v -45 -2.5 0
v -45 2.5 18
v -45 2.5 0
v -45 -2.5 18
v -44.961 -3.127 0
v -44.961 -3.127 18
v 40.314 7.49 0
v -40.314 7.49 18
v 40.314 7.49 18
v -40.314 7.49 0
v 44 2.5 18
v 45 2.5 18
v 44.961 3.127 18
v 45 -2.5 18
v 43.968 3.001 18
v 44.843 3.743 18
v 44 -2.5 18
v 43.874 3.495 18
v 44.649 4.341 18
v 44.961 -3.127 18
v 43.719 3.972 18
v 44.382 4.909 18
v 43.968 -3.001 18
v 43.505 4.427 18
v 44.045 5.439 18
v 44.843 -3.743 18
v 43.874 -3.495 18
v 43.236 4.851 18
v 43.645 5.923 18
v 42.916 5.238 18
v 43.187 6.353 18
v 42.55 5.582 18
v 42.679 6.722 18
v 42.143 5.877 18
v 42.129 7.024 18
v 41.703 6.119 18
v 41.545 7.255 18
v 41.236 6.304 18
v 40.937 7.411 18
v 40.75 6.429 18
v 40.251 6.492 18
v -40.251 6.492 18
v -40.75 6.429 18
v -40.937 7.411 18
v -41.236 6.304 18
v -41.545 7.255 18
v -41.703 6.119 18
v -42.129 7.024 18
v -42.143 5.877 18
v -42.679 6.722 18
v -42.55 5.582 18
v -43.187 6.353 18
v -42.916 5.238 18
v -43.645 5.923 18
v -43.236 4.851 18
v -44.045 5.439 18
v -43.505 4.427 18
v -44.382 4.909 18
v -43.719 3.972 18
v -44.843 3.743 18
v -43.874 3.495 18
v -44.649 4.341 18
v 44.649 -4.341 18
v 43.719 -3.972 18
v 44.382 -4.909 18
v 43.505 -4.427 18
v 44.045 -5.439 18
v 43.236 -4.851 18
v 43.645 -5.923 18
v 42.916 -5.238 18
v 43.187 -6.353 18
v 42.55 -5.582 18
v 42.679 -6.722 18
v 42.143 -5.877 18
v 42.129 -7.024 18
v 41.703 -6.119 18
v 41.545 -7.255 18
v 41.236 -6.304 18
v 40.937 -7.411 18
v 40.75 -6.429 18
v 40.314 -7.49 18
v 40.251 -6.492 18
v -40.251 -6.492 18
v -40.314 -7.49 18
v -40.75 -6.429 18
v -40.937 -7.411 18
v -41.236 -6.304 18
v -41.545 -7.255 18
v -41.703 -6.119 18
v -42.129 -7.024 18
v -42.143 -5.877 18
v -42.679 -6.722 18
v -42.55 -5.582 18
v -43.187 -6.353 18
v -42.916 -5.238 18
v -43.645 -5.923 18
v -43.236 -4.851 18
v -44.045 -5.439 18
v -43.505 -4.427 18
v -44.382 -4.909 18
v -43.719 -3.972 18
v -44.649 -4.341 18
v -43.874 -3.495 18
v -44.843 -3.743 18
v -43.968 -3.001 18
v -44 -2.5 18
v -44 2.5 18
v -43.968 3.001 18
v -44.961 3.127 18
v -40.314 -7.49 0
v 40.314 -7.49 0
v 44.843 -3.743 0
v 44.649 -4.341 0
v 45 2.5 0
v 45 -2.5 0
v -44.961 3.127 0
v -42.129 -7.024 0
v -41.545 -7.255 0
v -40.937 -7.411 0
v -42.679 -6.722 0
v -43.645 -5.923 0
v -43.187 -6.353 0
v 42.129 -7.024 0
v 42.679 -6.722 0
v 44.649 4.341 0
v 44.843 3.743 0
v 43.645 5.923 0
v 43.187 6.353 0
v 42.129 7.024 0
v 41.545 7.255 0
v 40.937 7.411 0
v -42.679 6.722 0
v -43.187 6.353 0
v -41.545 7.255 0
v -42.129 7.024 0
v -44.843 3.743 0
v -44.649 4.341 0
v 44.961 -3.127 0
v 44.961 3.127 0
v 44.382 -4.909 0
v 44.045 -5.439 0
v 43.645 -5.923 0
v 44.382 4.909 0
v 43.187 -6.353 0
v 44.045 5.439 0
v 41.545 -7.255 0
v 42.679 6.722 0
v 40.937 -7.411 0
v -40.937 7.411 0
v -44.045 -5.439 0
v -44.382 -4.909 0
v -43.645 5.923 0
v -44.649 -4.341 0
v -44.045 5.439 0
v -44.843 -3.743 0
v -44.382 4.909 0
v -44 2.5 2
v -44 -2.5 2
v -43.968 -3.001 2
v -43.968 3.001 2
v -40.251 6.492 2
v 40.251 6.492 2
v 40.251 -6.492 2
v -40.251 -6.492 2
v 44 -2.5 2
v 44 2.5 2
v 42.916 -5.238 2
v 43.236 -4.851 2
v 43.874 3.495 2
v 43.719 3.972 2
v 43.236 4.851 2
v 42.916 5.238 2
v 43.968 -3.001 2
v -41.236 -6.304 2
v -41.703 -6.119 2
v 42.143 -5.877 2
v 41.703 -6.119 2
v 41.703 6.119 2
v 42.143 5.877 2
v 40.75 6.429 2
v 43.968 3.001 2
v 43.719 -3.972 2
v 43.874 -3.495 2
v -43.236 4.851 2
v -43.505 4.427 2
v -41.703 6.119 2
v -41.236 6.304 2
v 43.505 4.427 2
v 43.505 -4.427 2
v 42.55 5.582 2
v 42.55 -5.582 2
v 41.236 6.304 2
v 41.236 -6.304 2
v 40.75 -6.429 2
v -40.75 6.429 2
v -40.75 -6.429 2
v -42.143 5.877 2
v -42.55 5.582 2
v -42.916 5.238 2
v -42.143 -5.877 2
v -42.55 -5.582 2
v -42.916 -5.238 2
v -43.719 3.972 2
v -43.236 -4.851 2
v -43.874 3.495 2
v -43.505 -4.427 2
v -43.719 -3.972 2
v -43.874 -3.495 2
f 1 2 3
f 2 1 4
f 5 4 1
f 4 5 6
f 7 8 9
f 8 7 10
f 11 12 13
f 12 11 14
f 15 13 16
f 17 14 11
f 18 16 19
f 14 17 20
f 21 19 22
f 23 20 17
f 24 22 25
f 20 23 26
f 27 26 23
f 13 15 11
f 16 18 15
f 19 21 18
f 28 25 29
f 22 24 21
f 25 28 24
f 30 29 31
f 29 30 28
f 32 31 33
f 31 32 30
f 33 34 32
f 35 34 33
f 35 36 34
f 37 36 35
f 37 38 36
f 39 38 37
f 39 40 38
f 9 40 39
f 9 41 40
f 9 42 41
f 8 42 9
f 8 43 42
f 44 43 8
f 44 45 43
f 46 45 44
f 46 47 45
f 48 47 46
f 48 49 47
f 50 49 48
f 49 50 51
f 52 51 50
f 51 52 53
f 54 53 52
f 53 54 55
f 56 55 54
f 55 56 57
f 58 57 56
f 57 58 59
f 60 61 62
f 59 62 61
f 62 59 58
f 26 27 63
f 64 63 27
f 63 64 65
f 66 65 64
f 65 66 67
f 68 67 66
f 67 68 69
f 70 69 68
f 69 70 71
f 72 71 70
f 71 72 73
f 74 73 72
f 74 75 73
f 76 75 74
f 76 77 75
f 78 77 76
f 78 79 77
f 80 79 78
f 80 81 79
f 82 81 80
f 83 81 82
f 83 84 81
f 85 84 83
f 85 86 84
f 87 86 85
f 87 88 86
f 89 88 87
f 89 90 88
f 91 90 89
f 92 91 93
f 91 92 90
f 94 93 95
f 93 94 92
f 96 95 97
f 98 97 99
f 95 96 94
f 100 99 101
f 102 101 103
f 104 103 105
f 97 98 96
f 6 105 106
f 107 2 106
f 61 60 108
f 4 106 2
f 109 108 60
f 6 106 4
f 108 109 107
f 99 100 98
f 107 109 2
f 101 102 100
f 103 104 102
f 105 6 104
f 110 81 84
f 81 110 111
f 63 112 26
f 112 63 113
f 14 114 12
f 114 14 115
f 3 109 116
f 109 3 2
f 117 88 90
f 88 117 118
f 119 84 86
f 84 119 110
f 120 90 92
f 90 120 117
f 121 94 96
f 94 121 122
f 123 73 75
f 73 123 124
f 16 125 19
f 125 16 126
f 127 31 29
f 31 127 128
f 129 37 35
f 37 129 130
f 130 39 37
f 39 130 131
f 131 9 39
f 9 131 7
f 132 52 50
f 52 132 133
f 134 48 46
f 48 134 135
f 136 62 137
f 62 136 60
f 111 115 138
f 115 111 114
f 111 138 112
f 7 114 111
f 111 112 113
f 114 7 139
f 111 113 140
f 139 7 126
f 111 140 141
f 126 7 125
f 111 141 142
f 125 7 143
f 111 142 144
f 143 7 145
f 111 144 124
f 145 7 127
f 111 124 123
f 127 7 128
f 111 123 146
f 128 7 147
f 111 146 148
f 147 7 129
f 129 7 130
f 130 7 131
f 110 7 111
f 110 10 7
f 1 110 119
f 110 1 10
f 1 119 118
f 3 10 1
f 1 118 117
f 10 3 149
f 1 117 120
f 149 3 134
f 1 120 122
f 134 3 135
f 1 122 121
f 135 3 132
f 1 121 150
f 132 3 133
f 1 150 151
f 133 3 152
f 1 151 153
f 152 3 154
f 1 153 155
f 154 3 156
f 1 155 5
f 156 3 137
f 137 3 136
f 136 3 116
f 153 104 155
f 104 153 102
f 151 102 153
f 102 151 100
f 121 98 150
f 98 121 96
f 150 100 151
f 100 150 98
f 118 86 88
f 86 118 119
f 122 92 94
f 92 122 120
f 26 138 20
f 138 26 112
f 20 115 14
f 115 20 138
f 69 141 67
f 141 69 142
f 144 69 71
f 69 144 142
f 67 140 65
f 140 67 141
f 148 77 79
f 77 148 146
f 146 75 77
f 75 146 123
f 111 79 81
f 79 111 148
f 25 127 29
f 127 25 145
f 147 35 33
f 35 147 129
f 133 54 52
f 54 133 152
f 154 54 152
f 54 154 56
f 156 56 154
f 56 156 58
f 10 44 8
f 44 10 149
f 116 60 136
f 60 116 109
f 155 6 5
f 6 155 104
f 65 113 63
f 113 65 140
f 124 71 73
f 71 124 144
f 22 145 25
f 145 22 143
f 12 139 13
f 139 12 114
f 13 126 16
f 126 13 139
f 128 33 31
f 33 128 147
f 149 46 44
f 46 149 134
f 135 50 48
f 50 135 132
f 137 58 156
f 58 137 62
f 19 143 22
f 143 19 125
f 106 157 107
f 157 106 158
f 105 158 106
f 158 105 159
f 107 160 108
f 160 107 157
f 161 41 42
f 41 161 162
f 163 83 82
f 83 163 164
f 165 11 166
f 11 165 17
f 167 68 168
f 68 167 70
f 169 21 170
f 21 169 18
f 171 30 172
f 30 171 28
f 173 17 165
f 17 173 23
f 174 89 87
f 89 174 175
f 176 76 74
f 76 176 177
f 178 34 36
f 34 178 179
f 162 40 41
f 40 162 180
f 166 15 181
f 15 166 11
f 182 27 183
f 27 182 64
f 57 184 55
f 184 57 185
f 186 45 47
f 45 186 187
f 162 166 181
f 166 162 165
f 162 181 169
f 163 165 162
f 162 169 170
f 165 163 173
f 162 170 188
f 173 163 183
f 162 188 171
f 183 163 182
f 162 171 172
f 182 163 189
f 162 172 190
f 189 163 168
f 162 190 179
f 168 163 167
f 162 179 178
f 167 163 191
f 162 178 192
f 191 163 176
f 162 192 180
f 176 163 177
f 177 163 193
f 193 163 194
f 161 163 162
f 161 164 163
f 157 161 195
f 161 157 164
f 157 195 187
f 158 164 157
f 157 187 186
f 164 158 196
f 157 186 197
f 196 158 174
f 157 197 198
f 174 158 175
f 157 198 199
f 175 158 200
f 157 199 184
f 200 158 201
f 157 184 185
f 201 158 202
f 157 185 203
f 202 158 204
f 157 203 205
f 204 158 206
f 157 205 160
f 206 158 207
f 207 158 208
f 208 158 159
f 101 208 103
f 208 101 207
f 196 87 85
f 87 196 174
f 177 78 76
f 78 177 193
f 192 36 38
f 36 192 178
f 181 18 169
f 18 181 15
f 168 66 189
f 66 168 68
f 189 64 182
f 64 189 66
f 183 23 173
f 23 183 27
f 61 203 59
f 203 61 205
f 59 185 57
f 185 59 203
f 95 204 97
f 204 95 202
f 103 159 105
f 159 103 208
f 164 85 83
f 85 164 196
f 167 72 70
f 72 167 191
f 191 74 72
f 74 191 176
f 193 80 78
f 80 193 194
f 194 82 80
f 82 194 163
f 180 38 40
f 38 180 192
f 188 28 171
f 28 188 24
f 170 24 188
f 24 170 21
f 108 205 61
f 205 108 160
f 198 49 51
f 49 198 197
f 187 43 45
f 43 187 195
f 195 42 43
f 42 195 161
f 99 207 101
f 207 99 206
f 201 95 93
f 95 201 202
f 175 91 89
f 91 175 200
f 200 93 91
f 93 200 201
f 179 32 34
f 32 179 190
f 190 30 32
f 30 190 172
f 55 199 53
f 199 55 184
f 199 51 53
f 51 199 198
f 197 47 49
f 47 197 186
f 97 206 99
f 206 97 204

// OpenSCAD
$fn = 50;


difference() {
	union() {
		hull() {
			translate(v = [-40.0000000000, 2.5000000000, 0]) {
				cylinder(h = 18, r = 5);
			}
			translate(v = [40.0000000000, 2.5000000000, 0]) {
				cylinder(h = 18, r = 5);
			}
			translate(v = [-40.0000000000, -2.5000000000, 0]) {
				cylinder(h = 18, r = 5);
			}
			translate(v = [40.0000000000, -2.5000000000, 0]) {
				cylinder(h = 18, r = 5);
			}
		}
	}
	union() {
		translate(v = [0, 0, 2]) {
			hull() {
				translate(v = [-40.0000000000, 2.5000000000, 0]) {
					cylinder(h = 16, r = 4);
				}
				translate(v = [40.0000000000, 2.5000000000, 0]) {
					cylinder(h = 16, r = 4);
				}
				translate(v = [-40.0000000000, -2.5000000000, 0]) {
					cylinder(h = 16, r = 4);
				}
				translate(v = [40.0000000000, -2.5000000000, 0]) {
					cylinder(h = 16, r = 4);
				}
			}
		}
	}
}
